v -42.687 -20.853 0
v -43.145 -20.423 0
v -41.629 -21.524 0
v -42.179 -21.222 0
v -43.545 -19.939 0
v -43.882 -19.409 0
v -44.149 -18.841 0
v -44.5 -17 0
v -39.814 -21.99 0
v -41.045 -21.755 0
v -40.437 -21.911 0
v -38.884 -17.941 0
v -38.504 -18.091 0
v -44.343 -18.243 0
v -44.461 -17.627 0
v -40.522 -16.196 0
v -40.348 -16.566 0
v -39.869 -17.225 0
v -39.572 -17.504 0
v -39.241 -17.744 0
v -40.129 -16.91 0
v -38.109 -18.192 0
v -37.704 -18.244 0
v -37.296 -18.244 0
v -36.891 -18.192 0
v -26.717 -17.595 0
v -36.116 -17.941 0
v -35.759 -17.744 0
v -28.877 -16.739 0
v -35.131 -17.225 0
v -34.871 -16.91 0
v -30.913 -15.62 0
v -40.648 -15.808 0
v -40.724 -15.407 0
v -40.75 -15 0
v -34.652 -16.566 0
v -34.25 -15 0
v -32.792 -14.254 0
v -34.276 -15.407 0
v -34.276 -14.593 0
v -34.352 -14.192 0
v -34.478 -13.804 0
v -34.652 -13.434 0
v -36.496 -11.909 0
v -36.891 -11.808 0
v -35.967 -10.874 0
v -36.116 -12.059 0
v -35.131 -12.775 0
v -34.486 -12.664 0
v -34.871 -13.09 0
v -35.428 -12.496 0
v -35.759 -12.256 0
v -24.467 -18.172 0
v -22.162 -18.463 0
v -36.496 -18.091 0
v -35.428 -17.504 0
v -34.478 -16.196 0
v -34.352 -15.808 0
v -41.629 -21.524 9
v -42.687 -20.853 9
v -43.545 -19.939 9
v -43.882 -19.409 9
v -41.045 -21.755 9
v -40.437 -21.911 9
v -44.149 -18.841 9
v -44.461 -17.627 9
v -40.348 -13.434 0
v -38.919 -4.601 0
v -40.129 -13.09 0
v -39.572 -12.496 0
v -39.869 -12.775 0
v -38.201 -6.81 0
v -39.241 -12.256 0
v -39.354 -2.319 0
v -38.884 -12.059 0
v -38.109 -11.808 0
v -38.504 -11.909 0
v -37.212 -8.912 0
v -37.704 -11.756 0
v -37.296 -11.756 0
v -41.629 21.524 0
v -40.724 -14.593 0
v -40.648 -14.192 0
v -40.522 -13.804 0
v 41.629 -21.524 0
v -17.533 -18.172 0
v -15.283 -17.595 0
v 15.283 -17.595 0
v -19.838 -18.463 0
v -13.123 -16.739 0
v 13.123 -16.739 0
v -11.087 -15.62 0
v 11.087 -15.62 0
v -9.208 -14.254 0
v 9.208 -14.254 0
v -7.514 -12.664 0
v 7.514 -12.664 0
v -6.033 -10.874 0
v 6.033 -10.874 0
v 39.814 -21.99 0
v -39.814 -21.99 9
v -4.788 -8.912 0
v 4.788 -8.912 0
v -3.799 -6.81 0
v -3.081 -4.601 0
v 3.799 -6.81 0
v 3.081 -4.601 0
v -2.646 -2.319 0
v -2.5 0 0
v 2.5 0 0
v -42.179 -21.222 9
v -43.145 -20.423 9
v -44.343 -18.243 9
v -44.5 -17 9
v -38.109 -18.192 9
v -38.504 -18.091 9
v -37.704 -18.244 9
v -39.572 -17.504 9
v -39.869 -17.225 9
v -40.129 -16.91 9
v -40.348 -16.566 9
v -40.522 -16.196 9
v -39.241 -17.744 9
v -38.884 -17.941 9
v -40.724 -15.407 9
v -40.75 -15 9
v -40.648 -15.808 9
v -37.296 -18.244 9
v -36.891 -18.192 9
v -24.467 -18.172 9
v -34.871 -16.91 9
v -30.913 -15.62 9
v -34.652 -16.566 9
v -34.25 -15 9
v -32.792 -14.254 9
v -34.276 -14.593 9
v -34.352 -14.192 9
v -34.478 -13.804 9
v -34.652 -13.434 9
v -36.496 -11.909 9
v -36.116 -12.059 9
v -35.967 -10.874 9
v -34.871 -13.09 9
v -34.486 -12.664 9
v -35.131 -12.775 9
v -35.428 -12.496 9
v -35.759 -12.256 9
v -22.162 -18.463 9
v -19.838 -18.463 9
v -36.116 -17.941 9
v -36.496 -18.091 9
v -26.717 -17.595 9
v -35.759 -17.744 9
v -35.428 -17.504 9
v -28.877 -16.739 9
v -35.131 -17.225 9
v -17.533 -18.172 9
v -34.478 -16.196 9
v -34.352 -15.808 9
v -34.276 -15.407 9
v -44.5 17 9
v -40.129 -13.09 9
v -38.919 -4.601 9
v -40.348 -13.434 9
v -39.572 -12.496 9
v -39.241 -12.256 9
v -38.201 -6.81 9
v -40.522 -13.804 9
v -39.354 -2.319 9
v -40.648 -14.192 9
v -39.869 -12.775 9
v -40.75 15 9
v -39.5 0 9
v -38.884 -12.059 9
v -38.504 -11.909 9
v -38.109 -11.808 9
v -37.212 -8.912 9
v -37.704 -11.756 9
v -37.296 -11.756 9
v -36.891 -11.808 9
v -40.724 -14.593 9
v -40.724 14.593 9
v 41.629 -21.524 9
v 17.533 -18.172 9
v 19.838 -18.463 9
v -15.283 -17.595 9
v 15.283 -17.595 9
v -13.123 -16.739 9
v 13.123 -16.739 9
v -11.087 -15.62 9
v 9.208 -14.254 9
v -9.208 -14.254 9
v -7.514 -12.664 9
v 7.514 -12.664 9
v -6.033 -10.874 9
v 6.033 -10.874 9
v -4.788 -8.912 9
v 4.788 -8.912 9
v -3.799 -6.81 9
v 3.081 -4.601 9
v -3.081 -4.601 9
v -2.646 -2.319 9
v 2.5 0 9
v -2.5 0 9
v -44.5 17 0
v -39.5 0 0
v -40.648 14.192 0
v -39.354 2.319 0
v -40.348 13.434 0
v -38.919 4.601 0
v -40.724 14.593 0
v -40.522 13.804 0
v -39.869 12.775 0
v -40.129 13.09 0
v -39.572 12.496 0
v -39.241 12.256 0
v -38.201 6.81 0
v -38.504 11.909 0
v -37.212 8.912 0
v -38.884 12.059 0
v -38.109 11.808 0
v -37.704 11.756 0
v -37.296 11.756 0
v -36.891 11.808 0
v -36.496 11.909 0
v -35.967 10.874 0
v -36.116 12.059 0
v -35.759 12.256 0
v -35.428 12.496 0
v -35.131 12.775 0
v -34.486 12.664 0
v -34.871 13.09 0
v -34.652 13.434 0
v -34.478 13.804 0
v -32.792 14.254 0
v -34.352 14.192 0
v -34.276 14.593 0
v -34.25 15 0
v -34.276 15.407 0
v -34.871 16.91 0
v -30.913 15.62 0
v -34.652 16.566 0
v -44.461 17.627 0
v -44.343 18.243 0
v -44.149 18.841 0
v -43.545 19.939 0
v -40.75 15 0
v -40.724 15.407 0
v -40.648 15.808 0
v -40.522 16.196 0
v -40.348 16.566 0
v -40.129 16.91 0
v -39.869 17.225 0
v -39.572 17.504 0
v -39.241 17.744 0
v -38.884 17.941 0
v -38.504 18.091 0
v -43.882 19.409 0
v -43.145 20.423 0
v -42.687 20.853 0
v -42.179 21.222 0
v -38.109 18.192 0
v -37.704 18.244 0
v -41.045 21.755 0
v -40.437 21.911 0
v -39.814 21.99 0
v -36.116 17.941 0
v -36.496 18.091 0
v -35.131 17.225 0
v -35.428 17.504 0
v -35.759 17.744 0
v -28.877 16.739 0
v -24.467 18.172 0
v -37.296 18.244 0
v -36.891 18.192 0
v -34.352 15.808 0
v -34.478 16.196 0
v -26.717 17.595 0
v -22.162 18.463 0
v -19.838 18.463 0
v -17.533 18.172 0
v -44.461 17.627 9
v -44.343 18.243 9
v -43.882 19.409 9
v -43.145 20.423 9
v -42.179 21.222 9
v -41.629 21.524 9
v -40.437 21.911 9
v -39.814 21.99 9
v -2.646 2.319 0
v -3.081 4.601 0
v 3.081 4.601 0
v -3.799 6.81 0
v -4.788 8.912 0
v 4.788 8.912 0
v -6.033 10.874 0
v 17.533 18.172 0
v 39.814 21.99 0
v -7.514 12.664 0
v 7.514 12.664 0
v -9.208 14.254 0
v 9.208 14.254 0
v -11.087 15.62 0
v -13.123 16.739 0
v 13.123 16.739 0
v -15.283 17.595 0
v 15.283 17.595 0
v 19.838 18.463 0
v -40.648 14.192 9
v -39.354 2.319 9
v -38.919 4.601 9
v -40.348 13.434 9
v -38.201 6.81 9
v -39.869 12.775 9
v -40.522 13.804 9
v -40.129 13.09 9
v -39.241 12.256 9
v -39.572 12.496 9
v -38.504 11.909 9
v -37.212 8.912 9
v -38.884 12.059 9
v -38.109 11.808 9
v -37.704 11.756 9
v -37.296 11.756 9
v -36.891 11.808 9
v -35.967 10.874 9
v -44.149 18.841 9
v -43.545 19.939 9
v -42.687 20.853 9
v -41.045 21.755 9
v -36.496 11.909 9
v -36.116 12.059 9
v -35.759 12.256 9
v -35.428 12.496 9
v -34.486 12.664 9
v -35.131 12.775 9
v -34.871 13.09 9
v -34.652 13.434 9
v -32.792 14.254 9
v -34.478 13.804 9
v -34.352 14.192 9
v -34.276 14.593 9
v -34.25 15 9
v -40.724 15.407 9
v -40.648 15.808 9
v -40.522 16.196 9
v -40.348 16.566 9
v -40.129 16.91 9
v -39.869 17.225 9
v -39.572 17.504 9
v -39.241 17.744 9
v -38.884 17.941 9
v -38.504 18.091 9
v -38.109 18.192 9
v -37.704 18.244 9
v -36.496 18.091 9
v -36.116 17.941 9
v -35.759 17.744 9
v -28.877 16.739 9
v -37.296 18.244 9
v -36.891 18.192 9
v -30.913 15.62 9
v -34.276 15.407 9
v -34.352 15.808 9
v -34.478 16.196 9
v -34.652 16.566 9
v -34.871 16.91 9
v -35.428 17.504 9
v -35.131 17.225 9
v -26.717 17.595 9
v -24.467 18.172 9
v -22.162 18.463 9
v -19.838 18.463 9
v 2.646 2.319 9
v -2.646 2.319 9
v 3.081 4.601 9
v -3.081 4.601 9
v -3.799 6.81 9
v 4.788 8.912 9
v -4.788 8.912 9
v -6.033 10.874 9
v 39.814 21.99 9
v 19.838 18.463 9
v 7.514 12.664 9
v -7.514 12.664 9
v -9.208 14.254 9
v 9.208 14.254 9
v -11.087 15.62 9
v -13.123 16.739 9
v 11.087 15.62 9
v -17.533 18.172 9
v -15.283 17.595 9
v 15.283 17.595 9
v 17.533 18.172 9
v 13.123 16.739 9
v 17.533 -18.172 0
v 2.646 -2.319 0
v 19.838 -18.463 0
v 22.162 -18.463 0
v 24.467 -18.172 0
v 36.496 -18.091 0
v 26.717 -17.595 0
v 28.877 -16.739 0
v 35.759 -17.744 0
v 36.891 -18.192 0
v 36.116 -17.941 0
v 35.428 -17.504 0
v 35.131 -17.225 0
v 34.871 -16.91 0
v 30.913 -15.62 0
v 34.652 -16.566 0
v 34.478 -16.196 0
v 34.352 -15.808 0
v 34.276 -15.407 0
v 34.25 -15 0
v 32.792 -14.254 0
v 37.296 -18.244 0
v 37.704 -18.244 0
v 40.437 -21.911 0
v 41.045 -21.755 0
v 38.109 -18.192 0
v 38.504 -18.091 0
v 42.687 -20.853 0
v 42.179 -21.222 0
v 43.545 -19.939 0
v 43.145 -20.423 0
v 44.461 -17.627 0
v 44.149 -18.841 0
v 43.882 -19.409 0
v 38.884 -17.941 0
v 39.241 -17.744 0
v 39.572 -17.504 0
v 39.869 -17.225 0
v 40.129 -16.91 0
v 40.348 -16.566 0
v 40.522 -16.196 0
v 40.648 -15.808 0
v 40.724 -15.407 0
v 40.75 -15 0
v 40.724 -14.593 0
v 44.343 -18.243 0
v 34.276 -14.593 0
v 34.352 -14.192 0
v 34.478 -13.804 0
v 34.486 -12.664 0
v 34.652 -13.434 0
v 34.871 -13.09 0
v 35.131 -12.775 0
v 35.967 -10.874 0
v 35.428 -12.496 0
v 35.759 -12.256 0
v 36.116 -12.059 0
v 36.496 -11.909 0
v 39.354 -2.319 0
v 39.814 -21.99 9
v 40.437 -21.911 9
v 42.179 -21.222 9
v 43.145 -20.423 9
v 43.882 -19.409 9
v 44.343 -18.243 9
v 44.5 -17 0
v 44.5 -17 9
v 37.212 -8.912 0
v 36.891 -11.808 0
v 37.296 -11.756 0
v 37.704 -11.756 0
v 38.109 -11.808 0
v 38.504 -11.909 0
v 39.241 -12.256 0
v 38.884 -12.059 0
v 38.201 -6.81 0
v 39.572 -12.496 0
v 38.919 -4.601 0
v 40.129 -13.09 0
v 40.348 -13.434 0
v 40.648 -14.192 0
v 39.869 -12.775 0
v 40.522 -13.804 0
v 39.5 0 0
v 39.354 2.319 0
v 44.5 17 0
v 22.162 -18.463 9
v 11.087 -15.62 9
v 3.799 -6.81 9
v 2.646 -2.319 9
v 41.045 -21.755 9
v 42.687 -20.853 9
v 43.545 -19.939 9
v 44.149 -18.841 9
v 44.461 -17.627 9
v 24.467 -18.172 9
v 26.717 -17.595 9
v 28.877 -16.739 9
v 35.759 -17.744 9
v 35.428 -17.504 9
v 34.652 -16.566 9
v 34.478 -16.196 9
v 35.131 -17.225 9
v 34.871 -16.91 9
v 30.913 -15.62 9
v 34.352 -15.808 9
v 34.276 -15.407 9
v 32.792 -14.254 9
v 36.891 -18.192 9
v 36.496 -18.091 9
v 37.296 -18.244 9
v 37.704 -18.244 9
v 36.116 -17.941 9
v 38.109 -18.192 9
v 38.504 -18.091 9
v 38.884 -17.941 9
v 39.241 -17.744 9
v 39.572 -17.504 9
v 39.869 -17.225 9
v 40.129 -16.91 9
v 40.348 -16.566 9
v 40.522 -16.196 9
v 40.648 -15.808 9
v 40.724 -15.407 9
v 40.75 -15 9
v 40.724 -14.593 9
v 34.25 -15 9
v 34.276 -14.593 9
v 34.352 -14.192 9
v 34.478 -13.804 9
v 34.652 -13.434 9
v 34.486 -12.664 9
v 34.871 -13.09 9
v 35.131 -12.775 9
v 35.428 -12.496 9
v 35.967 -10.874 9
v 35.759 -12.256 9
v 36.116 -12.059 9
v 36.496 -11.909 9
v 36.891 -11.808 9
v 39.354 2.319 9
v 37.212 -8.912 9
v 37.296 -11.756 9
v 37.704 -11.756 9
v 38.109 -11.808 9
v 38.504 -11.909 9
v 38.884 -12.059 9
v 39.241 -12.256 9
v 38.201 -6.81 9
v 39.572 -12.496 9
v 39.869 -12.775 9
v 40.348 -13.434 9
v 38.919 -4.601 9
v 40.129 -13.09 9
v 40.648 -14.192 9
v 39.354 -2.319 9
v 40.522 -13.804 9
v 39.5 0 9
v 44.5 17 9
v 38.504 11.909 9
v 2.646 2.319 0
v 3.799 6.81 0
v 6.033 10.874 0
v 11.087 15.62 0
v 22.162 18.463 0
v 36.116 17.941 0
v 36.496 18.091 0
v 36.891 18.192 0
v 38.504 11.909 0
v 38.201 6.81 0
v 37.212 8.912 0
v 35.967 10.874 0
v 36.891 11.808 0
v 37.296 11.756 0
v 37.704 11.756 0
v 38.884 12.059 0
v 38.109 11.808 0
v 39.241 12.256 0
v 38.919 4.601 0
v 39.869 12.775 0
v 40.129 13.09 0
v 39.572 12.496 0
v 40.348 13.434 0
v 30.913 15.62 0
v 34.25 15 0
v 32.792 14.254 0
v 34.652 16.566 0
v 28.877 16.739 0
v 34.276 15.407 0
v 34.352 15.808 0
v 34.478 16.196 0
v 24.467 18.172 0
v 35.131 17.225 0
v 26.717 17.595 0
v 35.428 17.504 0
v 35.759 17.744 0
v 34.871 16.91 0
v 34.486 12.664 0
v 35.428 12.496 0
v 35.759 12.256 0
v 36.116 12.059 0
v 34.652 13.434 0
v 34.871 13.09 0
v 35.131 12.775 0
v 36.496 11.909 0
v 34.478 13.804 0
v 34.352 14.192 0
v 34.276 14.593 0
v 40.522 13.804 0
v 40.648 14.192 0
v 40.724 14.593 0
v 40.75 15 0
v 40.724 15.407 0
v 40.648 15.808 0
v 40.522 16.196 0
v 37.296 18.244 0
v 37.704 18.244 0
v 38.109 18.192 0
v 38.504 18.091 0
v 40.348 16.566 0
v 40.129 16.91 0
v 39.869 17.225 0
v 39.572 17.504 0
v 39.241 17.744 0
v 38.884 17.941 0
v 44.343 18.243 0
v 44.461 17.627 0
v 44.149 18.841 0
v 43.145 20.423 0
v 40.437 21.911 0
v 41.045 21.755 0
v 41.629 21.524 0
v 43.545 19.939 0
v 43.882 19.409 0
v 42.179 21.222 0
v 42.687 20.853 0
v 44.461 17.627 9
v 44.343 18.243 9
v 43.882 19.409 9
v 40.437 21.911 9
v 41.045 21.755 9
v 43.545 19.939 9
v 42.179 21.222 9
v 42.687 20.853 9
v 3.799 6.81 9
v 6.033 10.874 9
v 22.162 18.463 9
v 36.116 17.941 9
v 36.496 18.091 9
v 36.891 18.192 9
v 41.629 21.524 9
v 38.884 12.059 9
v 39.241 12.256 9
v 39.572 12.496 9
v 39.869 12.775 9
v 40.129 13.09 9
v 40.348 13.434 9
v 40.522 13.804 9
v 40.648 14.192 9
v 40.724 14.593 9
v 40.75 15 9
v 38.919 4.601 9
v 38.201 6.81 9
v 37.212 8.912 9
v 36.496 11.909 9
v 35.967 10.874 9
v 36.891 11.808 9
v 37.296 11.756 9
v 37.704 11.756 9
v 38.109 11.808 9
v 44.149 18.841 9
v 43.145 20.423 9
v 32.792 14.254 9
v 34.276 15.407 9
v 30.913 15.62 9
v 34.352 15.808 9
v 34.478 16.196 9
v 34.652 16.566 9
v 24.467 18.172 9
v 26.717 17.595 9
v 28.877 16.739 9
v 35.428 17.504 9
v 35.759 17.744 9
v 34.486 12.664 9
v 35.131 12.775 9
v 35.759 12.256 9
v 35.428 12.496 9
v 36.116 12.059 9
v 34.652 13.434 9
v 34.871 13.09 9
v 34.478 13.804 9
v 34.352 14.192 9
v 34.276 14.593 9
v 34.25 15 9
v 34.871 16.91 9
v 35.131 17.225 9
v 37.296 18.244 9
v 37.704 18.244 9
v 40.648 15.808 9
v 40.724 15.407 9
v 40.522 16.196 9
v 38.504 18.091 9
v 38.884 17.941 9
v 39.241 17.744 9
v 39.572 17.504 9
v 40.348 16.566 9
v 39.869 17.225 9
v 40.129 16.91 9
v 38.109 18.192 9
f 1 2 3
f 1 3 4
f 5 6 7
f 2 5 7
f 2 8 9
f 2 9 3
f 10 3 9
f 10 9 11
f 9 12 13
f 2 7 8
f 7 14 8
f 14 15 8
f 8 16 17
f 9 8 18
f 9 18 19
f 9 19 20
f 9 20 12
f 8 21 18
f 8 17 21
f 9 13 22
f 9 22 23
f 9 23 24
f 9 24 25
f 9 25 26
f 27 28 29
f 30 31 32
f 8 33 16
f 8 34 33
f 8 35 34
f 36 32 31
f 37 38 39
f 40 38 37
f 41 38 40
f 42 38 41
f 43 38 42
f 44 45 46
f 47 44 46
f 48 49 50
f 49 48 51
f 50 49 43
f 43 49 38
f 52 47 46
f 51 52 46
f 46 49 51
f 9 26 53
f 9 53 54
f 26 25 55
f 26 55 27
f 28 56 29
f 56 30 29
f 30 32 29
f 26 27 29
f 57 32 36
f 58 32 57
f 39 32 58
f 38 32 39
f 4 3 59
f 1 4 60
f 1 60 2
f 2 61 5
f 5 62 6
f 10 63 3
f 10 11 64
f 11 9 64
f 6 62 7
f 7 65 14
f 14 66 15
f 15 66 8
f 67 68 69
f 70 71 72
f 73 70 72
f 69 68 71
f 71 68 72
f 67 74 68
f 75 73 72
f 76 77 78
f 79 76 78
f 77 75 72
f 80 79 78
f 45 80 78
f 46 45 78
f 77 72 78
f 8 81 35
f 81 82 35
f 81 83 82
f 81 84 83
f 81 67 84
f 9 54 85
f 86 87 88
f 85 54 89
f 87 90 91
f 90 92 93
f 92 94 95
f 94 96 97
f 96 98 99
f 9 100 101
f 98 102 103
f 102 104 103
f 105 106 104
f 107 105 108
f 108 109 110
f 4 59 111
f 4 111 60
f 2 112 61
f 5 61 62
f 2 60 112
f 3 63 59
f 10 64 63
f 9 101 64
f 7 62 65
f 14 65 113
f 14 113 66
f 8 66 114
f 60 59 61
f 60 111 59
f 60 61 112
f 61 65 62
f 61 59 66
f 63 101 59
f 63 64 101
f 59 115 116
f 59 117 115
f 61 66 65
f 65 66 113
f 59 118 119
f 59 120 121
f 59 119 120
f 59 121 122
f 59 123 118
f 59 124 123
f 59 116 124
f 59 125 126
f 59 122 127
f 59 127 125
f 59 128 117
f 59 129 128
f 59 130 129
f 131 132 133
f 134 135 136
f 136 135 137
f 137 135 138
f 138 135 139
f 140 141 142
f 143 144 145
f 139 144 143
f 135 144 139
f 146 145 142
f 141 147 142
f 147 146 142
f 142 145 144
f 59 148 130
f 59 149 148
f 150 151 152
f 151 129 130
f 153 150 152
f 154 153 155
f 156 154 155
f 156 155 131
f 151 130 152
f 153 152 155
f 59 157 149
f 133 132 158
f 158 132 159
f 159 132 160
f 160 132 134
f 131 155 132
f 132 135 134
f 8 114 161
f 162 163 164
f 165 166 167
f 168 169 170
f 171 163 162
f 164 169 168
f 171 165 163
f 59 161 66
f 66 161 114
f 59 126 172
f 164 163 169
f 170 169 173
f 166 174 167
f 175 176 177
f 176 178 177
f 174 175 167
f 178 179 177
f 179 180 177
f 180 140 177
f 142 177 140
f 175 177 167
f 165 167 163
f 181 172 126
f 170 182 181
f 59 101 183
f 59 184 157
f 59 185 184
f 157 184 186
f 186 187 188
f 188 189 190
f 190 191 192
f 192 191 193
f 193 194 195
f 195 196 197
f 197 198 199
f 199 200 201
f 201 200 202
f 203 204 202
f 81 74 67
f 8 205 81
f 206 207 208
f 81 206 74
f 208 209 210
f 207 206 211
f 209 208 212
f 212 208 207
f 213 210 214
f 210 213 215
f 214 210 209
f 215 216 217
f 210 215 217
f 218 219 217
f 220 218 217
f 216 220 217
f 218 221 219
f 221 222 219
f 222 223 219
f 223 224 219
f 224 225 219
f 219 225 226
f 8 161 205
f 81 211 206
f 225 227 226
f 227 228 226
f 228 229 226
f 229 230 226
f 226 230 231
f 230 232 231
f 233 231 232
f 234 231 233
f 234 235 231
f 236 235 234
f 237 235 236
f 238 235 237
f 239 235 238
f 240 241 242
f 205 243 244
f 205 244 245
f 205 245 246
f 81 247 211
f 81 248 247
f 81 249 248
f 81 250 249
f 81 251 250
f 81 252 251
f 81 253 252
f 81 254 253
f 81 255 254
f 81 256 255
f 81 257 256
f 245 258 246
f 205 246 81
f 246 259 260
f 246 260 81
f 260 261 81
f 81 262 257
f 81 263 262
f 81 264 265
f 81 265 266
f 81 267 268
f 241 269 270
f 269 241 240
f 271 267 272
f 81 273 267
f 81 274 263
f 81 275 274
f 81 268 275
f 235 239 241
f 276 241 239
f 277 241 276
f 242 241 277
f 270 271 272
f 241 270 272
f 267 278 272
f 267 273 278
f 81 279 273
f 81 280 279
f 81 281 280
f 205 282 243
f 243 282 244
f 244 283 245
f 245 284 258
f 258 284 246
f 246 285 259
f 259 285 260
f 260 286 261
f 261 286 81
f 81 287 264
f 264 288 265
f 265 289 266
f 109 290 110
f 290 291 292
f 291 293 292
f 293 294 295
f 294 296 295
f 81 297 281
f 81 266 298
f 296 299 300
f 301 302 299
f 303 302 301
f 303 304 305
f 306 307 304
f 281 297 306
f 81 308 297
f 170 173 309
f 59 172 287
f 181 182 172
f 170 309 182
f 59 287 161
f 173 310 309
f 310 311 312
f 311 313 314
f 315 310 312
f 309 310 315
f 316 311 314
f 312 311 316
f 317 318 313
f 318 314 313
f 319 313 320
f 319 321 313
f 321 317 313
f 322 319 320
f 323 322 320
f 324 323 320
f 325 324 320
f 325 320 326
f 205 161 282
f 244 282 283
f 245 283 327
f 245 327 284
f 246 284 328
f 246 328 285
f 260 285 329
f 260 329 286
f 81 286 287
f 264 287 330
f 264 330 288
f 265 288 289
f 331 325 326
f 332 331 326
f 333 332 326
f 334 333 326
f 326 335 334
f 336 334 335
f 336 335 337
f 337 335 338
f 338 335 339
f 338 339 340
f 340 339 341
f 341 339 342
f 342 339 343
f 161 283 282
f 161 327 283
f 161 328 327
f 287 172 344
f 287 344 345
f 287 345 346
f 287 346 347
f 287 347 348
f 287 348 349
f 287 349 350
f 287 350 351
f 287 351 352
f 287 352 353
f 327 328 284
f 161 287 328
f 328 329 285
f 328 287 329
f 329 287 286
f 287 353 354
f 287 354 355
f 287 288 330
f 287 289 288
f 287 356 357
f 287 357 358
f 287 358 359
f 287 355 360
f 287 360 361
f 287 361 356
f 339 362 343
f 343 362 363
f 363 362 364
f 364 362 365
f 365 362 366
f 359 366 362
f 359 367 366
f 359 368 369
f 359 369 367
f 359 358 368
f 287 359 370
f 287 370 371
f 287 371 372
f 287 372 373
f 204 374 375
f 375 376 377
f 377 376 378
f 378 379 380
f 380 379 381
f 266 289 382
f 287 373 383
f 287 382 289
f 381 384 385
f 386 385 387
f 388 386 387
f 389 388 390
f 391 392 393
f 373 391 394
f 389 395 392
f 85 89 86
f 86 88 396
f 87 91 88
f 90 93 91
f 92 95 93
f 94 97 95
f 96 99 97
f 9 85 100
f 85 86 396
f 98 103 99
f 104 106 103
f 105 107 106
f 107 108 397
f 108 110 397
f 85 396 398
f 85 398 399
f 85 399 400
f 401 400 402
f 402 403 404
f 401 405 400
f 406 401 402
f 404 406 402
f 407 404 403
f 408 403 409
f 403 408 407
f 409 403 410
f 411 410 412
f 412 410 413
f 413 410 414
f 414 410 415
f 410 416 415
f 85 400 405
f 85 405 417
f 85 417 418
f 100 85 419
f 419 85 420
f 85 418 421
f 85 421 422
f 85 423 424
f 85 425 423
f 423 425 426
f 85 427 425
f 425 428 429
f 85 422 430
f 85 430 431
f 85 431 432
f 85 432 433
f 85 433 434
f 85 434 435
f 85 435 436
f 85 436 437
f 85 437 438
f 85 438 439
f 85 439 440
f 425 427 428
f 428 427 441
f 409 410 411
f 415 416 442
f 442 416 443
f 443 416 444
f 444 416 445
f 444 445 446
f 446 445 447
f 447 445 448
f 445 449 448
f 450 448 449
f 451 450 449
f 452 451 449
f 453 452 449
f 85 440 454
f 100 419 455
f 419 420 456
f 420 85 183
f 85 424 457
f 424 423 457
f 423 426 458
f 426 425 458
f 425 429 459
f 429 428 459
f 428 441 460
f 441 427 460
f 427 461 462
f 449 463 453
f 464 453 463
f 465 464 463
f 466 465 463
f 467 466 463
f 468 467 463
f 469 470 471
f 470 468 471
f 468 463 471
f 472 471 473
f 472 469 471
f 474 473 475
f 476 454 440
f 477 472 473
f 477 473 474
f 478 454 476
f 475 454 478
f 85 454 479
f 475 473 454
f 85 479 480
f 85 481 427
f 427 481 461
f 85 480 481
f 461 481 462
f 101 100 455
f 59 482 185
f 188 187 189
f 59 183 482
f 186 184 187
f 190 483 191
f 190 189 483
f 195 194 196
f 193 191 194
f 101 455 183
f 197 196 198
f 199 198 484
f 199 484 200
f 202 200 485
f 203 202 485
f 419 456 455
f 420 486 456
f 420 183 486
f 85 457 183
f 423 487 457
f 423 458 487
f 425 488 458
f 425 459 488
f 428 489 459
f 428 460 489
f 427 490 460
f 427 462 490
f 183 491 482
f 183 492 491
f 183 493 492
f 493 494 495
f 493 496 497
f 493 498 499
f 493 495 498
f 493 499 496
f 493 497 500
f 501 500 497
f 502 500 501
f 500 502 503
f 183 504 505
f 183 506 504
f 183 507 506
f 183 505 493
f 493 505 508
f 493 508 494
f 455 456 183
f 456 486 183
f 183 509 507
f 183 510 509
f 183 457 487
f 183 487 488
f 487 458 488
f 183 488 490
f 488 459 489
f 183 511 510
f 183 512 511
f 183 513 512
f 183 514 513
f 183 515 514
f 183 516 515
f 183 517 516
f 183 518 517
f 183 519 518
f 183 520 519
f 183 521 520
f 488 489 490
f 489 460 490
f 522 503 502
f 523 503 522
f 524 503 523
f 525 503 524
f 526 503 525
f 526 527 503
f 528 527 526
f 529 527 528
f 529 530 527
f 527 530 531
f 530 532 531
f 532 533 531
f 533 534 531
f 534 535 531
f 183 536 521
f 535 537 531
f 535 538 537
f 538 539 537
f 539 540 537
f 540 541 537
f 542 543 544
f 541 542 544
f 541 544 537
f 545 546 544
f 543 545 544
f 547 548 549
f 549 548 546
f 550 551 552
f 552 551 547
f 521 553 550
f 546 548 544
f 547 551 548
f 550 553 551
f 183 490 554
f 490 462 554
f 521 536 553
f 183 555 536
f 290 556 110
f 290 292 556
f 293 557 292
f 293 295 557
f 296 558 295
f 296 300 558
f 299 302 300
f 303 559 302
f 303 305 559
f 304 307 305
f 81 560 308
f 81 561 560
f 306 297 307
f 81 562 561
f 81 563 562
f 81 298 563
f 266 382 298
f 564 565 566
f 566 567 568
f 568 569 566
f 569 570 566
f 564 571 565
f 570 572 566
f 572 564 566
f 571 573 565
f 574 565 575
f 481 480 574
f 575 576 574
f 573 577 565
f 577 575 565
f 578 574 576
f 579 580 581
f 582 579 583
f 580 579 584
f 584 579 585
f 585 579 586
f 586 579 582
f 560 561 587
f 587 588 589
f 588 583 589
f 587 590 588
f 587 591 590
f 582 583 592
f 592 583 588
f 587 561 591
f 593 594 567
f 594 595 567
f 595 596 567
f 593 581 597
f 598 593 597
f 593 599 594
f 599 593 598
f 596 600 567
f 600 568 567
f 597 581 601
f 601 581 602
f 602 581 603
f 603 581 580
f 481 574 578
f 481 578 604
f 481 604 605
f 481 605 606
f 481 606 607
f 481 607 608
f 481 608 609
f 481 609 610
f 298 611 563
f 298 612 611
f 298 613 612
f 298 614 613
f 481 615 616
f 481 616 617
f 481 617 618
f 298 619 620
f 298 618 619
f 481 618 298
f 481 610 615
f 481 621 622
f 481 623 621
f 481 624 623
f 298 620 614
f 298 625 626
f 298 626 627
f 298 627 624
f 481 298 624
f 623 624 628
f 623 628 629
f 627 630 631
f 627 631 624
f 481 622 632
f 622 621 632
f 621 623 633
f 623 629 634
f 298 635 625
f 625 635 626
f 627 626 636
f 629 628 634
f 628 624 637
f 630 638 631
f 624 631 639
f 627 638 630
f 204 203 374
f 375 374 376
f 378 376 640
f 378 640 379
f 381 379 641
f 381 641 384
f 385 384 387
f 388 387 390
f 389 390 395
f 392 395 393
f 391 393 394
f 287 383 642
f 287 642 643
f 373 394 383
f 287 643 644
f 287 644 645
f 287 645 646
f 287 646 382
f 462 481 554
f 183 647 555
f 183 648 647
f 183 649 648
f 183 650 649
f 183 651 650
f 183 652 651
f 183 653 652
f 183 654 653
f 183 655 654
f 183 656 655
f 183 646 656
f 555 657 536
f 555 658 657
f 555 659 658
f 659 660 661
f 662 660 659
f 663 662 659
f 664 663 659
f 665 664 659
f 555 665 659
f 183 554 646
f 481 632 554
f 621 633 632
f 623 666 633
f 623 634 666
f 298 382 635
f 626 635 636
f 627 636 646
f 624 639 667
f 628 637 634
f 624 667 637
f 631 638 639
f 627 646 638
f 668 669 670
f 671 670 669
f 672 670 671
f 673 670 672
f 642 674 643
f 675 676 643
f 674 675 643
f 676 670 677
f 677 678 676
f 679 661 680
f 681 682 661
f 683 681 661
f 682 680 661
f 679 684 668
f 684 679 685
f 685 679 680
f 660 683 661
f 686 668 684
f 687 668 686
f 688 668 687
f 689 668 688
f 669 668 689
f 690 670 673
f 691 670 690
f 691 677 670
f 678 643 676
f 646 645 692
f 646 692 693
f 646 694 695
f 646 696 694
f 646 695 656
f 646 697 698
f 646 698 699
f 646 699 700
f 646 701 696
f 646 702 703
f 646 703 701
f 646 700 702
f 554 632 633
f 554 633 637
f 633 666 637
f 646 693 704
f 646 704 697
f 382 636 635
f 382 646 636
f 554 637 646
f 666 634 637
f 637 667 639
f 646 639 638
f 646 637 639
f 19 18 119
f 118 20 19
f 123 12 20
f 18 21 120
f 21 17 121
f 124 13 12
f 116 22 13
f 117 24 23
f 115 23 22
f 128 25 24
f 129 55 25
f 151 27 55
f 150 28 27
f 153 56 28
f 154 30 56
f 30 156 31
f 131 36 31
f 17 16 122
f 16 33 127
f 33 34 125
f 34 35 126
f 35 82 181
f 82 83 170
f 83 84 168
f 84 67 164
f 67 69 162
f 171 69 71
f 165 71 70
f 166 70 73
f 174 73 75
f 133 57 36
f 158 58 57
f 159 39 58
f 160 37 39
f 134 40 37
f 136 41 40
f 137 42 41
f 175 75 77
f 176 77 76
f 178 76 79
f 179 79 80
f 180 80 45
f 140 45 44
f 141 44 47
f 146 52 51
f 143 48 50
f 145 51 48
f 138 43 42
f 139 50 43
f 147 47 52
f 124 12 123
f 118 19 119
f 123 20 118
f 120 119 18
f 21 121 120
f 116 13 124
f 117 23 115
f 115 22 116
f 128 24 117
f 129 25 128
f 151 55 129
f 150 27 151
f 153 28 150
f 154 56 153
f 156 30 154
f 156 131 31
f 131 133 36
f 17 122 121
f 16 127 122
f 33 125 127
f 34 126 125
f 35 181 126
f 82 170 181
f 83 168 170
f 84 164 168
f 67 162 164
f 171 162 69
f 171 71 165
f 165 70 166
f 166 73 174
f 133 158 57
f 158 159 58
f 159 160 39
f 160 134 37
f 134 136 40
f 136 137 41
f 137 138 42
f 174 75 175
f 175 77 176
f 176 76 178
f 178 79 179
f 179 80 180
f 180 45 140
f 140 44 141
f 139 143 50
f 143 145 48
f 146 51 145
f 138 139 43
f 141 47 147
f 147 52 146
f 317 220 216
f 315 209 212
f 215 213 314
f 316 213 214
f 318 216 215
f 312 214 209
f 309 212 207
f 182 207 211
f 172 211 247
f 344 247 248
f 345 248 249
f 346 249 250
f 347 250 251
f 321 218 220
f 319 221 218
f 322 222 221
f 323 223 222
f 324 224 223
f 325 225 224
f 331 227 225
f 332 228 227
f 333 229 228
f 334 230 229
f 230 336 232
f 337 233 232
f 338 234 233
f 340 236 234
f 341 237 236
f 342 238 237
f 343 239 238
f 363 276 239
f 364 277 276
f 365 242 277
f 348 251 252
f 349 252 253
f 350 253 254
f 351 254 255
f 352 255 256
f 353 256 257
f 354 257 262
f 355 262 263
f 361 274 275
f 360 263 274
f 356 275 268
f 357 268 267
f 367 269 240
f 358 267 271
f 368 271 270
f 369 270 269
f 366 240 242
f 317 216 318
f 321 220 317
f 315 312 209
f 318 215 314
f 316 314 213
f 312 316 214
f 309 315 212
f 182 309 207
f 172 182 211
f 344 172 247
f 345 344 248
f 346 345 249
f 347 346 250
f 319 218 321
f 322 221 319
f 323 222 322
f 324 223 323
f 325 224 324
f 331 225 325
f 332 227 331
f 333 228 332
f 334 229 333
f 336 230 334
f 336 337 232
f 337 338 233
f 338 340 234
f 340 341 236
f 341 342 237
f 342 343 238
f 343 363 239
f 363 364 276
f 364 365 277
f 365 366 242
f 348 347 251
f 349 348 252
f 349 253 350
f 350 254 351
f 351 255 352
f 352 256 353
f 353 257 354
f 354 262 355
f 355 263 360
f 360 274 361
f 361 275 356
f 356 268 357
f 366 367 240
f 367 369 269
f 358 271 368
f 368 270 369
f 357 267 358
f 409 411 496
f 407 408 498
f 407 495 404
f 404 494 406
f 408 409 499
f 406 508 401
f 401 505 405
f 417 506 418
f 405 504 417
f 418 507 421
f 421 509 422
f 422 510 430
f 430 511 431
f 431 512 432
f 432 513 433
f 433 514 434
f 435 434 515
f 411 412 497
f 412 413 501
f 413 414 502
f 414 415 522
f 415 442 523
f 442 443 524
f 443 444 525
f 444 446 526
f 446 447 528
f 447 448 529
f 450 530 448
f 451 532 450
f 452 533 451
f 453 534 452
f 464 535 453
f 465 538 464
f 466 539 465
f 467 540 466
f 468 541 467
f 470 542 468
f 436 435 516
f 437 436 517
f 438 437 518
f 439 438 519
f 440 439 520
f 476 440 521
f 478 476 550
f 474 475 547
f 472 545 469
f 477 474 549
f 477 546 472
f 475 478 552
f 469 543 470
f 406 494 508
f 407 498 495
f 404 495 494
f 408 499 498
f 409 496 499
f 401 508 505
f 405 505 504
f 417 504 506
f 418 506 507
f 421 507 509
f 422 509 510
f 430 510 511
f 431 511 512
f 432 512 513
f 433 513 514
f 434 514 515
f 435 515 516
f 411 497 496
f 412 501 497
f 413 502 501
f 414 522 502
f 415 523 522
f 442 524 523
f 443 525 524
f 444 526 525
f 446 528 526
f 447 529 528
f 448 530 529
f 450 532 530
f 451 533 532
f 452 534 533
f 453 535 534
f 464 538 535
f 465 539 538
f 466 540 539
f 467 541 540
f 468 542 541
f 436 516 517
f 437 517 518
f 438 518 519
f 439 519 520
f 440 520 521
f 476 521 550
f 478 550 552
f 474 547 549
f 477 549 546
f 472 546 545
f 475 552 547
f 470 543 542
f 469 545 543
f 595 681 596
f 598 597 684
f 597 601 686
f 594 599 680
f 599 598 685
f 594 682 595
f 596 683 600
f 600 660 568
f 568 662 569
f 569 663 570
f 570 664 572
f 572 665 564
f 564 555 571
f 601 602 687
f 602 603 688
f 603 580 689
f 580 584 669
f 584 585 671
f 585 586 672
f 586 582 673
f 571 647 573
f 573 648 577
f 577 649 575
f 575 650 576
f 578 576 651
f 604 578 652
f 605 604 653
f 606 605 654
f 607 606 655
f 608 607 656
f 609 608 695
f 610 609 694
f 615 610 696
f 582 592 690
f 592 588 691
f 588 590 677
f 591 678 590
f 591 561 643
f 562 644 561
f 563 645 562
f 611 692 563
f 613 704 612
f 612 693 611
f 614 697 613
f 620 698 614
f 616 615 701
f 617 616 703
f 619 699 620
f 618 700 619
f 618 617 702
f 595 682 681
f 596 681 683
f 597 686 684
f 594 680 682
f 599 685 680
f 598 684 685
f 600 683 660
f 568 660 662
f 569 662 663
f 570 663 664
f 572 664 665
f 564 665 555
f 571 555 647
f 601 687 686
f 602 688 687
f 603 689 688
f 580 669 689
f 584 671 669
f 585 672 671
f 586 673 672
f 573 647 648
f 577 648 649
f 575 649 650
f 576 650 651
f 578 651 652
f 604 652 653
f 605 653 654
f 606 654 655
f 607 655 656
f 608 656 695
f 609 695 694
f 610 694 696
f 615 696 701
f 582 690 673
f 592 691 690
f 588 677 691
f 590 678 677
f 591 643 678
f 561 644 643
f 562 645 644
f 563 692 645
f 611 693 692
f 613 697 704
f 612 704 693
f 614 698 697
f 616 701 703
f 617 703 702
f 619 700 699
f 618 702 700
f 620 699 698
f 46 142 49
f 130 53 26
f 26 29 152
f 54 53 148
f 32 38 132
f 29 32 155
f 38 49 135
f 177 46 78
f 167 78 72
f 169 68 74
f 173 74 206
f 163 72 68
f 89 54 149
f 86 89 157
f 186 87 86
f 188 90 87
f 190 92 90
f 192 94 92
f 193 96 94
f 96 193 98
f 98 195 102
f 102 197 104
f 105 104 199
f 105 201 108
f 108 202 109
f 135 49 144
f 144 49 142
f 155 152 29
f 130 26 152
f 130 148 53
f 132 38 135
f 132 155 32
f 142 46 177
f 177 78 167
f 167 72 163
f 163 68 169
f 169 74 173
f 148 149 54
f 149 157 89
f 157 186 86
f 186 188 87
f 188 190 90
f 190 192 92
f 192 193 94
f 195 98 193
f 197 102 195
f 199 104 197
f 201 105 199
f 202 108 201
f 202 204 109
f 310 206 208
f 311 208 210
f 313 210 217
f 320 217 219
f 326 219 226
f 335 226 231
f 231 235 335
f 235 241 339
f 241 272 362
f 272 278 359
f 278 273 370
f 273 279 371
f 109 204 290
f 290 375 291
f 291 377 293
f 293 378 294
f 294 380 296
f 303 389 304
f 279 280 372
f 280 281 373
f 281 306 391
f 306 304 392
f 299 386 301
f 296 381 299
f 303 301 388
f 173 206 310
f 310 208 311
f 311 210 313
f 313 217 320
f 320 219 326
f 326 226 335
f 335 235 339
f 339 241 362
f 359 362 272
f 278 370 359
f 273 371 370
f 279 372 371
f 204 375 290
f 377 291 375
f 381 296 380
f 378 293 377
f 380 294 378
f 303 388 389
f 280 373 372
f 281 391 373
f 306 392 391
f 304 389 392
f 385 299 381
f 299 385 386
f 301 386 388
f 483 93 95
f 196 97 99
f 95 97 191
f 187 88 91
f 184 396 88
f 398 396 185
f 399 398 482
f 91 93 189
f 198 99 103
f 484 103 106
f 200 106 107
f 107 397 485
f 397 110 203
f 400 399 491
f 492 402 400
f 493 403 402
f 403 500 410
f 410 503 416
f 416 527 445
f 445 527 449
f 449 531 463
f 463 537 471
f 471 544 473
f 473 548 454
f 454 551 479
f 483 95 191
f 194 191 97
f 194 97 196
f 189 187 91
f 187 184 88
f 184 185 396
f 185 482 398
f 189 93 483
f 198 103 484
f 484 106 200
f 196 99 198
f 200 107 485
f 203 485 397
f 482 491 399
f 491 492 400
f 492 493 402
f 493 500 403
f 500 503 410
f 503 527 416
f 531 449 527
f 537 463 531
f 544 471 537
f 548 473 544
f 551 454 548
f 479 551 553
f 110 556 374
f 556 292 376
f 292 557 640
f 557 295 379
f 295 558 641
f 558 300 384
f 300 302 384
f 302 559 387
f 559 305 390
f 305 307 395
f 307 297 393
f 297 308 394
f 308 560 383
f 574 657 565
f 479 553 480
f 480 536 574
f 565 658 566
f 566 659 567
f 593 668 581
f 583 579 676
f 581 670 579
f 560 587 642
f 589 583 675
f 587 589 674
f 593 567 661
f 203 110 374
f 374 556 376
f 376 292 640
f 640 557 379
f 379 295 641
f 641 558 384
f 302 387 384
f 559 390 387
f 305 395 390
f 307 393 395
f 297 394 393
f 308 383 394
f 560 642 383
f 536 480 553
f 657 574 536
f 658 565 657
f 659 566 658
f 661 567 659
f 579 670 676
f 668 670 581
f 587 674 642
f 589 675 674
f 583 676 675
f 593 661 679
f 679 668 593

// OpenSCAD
$fn = 50;

difference() {
	union() {
		hull() {
			translate(v = [-39.5, 17.0, 0]) {
				cylinder(h = 9, r = 5);
			}
			translate(v = [39.5, 17.0, 0]) {
				cylinder(h = 9, r = 5);
			}
			translate(v = [-39.5, -17.0, 0]) {
				cylinder(h = 9, r = 5);
			}
			translate(v = [39.5, -17.0, 0]) {
				cylinder(h = 9, r = 5);
			}
		}
	}
	union() {
		translate(v = [-37.5, -15.0, -100.0]) {
			cylinder(h = 200, r = 3.25);
		}
		translate(v = [-37.5, 15.0, -100.0]) {
			cylinder(h = 200, r = 3.25);
		}
		translate(v = [37.5, -15.0, -100.0]) {
			cylinder(h = 200, r = 3.25);
		}
		translate(v = [37.5, 15.0, -100.0]) {
			cylinder(h = 200, r = 3.25);
		}
		translate(v = [-37.5, -15.0, -100.0]) {
			cylinder(h = 200, r = 1.8);
		}
		translate(v = [-37.5, 15.0, -100.0]) {
			cylinder(h = 200, r = 1.8);
		}
		translate(v = [37.5, -15.0, -100.0]) {
			cylinder(h = 200, r = 1.8);
		}
		translate(v = [37.5, 15.0, -100.0]) {
			cylinder(h = 200, r = 1.8);
		}
		translate(v = [-21.0, 0, 0.0]) {
			cylinder(h = 9, r = 18.5);
		}
		translate(v = [21.0, 0, 0.0]) {
			cylinder(h = 9, r = 18.5);
		}
	}
}
